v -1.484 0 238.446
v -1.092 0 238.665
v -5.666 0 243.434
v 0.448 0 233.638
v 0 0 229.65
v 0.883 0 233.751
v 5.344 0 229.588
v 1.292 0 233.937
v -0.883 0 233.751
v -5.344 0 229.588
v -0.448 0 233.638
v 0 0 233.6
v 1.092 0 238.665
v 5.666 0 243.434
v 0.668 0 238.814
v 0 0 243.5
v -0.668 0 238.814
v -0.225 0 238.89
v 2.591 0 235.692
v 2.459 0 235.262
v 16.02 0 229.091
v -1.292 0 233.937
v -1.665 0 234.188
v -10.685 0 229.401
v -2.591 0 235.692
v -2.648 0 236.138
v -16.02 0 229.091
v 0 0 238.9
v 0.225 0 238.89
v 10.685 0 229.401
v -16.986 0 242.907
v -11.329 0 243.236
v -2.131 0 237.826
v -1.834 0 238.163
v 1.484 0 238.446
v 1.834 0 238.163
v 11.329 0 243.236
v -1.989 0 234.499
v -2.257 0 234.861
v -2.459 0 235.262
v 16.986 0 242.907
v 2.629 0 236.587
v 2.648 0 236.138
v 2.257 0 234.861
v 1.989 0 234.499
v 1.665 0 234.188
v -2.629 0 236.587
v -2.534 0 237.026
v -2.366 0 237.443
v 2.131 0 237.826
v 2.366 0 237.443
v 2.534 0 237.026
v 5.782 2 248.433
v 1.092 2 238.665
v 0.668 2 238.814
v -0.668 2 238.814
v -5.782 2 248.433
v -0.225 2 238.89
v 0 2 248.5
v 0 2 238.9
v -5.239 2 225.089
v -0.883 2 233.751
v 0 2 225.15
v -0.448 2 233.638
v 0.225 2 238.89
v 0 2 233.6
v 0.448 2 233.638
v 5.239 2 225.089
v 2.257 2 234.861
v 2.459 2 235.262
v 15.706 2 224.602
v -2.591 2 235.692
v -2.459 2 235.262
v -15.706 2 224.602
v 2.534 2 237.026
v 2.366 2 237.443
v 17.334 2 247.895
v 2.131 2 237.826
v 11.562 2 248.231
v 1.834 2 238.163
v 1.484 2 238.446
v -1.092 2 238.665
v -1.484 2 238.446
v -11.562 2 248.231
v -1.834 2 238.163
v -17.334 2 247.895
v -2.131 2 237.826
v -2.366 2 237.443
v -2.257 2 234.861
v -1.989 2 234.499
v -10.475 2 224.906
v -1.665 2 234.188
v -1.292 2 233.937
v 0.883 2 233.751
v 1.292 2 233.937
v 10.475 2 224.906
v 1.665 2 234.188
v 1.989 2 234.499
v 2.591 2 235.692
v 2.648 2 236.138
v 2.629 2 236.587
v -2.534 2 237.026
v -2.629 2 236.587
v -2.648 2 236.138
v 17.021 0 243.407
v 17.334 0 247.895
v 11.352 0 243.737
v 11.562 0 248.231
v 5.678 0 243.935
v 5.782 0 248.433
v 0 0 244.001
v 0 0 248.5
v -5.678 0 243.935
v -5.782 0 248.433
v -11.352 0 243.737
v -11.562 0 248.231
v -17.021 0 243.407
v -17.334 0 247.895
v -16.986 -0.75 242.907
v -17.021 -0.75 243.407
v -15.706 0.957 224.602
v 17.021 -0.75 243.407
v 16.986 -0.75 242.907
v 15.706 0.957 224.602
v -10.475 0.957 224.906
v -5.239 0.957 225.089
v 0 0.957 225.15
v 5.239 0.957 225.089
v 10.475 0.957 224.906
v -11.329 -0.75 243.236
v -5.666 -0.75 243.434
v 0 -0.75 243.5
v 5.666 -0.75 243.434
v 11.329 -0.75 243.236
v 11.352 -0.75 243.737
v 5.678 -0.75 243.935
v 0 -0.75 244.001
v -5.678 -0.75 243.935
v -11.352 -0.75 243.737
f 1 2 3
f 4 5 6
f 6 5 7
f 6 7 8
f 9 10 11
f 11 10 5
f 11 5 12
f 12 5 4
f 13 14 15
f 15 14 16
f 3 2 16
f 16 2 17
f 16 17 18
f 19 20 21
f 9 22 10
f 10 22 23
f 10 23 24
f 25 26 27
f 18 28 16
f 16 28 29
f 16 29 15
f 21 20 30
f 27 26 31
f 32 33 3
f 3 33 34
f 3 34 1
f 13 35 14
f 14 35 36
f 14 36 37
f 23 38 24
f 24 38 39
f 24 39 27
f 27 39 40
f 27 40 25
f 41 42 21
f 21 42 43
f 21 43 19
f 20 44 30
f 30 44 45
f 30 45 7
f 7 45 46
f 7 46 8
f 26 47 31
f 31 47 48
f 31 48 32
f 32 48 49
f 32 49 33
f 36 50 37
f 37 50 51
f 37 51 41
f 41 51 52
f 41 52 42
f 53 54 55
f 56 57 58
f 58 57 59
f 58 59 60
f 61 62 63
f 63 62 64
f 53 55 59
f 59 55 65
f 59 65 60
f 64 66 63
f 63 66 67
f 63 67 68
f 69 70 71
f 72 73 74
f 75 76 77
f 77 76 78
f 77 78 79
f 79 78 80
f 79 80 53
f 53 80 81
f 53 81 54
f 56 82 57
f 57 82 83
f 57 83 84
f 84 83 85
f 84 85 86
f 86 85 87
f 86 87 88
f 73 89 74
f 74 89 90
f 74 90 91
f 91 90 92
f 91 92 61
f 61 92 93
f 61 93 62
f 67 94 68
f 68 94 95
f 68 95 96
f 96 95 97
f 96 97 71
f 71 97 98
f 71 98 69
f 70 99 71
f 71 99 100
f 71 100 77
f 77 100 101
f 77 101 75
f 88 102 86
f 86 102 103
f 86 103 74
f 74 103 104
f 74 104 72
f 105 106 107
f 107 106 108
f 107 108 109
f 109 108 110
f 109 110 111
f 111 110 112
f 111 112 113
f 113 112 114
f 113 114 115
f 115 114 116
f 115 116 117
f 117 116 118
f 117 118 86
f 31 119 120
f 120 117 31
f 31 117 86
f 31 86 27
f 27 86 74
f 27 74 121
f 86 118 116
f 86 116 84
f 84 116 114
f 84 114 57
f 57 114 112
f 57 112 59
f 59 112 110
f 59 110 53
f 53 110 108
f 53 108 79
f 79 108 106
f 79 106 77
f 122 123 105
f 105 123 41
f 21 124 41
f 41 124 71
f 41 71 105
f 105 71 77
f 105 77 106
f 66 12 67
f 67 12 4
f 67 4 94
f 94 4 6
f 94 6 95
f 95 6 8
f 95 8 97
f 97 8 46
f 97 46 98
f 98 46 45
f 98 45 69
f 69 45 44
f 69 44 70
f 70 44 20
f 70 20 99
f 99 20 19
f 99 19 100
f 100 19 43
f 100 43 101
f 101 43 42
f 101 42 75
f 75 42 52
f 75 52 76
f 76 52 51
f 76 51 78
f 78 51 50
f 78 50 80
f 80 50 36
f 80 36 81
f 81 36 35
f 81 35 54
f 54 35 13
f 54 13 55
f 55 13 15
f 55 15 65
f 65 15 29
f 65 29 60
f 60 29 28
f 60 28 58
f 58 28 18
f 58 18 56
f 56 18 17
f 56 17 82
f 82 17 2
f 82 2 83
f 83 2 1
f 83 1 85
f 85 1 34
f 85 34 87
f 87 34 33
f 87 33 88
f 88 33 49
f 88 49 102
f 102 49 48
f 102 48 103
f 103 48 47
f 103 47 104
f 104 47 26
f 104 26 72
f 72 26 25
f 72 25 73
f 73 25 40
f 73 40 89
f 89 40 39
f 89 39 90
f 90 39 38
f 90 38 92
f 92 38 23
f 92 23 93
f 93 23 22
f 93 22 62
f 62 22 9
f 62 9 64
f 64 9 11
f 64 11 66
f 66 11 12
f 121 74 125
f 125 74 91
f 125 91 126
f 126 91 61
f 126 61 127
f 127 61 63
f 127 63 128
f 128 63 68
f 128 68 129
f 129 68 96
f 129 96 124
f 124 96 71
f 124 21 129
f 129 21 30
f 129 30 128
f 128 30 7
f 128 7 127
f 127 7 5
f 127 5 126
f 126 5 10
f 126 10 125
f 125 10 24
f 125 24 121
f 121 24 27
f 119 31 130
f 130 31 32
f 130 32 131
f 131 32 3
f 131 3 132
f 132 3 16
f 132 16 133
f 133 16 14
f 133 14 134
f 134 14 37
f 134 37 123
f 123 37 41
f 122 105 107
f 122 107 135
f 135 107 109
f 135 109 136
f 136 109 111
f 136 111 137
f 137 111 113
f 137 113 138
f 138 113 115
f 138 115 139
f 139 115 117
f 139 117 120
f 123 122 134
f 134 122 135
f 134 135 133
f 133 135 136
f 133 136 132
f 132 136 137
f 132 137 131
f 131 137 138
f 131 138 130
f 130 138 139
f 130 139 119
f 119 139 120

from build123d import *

# Parameters (mm, degrees)
SKETCH2_R           = 2.65
BOSS_EXTRUDE1_DEPTH = 2
BOSS_EXTRUDE2_DEPTH = 2
CHAMFER1_SIZE       = 4.5
CHAMFER1_SIZE2      = 0.956504528
BOSS_EXTRUDE3_DEPTH = 0.75


with BuildPart() as part:
    # Sketch2 → Boss-Extrude1 (new body)
    with BuildSketch(Plane(origin=(0, 0, 0), x_dir=(1, 0, 0), z_dir=(0, 1, 0))):
        with BuildLine():
            Line((-15.984695958, -228.591802117), (-17.334483725, -247.89466649))
            ThreePointArc((-17.334483725, -247.89466649), (0, -248.5), (17.334483725, -247.89466649))
            Line((17.334483725, -247.89466649), (15.984695958, -228.591802117))
            ThreePointArc((15.984695958, -228.591802117), (0, -229.15), (-15.984695958, -228.591802117))
        make_face()
        with Locations(Location((0, -236.25, 0), (0, 0, 270))):
            Circle(SKETCH2_R, mode=Mode.SUBTRACT)
    extrude(amount=BOSS_EXTRUDE1_DEPTH)

    # Sketch3 → Boss-Extrude2 (add)
    with BuildSketch(Plane(origin=(0, 0, 0), x_dir=(1, 0, 0), z_dir=(0, 1, 0))):
        with BuildLine():
            Line((-15.705670063, -224.601545916), (-15.984695958, -228.591802117))
            ThreePointArc((-15.984695958, -228.591802117), (0, -229.15), (15.984695958, -228.591802117))
            Line((15.984695958, -228.591802117), (15.705670063, -224.601545916))
            ThreePointArc((15.705670063, -224.601545916), (0, -225.15), (-15.705670063, -224.601545916))
        make_face()
    extrude(amount=BOSS_EXTRUDE2_DEPTH)

    # Chamfer1
    chamfer1_edges = [part.edges().sort_by_distance(p)[0] for p in [
        (0, 0, 225.15),
    ]]
    chamfer1_side = [part.faces().sort_by_distance(p)[0] for p in [
        (0, 0, 248.078921217),
    ]]
    chamfer(chamfer1_edges, length=CHAMFER1_SIZE, length2=CHAMFER1_SIZE2, reference=chamfer1_side[0])

    # Sketch4 → Boss-Extrude3 (add)
    with BuildSketch(Plane.XZ):
        with BuildLine():
            Line((-17.020664763, 243.406846238), (-16.985701357, 242.906846238))
            ThreePointArc((-16.985701357, 242.906846238), (0, 243.5), (16.985701357, 242.906846238))
            Line((16.985701357, 242.906846238), (17.020664763, 243.406846238))
            ThreePointArc((17.020664763, 243.406846238), (0, 244.001220949), (-17.020664763, 243.406846238))
        make_face()
    extrude(amount=BOSS_EXTRUDE3_DEPTH)


solid = part.part
